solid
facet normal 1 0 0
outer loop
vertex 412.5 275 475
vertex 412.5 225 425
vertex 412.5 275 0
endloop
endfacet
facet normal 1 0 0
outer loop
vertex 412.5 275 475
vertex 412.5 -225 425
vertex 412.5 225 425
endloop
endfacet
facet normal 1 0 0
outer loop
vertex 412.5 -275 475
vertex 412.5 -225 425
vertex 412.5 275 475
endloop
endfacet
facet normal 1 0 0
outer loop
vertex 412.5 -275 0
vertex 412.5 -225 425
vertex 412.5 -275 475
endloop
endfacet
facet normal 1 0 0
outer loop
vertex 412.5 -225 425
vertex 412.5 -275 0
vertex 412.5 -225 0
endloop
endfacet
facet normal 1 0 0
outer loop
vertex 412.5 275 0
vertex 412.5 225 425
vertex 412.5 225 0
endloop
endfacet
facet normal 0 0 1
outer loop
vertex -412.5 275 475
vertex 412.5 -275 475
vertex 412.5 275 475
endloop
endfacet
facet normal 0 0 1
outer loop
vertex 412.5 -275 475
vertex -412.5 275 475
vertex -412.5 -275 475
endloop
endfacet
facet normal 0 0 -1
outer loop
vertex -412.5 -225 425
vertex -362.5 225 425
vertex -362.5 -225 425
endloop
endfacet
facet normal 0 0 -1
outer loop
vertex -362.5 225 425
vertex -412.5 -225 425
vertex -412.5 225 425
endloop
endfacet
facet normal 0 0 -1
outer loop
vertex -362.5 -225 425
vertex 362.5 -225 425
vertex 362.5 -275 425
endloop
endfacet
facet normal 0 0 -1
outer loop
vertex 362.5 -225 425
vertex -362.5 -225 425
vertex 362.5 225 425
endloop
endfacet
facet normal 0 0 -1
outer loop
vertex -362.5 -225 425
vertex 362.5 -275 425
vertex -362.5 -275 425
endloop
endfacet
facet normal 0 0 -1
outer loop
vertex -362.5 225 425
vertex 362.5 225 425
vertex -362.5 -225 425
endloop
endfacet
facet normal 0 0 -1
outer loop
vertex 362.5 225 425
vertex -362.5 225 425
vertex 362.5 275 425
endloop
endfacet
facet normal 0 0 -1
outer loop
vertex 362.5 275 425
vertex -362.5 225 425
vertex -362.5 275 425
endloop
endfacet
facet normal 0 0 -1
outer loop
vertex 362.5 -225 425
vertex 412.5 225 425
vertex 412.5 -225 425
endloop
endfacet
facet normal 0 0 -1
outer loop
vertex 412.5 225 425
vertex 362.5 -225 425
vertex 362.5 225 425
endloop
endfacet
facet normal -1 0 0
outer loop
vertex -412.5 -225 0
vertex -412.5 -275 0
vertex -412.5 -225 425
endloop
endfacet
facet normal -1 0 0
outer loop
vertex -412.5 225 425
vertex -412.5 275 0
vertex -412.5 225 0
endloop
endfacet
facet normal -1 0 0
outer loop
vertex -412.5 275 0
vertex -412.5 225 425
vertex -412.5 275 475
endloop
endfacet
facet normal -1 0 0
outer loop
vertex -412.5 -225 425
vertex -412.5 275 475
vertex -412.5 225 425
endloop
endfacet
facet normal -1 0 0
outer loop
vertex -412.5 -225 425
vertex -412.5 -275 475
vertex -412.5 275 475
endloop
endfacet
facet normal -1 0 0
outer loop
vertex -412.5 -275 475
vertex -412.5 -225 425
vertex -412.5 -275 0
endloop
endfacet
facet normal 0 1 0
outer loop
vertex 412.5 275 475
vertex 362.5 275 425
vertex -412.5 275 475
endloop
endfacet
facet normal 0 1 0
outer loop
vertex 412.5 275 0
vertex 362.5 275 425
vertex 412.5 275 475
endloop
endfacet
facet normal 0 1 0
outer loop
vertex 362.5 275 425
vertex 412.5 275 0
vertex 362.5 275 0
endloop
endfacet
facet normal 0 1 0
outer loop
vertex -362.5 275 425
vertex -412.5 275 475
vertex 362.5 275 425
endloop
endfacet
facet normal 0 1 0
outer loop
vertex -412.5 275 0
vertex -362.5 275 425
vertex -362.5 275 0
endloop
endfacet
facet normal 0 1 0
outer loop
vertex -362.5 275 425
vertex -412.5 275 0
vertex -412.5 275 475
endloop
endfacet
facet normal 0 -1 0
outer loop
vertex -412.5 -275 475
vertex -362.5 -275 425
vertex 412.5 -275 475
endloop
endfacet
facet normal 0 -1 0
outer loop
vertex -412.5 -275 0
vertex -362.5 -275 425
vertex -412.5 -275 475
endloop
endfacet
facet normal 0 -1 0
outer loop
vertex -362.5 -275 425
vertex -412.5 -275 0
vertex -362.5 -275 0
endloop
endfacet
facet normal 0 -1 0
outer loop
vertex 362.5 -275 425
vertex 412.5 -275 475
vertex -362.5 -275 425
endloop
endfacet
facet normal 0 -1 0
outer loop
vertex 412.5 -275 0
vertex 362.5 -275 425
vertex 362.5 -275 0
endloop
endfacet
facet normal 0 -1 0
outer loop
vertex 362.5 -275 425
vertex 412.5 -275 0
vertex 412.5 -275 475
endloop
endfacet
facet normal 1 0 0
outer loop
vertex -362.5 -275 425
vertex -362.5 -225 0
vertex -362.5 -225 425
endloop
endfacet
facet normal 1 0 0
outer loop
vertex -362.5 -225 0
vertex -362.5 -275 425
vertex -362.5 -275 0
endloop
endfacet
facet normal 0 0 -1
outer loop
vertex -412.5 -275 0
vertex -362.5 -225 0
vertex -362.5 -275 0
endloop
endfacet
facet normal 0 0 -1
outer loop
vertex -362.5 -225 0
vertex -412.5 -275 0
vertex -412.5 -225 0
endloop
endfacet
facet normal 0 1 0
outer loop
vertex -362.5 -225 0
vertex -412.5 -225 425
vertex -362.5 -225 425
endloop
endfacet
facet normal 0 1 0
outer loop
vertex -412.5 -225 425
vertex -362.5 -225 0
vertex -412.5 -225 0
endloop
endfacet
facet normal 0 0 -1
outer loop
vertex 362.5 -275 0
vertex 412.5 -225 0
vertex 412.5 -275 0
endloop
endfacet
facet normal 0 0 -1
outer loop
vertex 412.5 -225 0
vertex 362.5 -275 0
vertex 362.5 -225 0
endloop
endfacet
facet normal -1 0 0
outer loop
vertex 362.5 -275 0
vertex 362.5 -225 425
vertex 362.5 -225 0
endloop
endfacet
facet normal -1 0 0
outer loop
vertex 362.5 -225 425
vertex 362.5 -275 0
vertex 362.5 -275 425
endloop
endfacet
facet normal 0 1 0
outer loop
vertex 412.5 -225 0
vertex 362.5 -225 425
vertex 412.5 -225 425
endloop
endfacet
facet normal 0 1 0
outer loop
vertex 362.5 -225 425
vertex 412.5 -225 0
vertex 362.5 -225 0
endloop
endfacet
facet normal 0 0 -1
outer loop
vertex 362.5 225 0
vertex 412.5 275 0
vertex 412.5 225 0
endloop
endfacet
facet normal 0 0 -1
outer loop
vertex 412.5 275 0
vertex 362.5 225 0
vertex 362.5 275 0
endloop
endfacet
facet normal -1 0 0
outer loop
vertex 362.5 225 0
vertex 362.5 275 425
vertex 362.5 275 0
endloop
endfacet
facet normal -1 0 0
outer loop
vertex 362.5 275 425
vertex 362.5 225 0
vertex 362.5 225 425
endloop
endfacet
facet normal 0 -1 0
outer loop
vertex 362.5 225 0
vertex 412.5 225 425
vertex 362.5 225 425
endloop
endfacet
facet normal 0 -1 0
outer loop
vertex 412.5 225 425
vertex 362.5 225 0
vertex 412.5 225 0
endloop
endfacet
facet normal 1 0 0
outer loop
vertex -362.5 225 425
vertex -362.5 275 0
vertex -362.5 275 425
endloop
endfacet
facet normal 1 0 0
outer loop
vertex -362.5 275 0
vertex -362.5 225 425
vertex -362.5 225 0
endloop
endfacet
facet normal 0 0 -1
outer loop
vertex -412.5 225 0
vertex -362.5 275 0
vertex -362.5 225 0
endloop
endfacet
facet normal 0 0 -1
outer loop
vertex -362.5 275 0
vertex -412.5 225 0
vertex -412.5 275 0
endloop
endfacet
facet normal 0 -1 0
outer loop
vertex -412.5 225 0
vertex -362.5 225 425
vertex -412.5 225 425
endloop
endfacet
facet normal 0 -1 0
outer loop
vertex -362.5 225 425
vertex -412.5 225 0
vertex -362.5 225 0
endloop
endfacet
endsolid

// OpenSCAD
// 50% longer IKEA Lack table. Dimensions: length: 82.5 cm, width: 55 cm, height: 45 cm.

side_x = 825;
side_y = 550;
height = 450;
thickness = 50;

union()
{
  translate([-side_x/2, -side_y/2, height - thickness/2])
    cube([side_x, side_y, thickness]);

  translate([-side_x/2, -side_y/2, 0])
    cube([thickness, thickness, height]);

  translate([+side_x/2 - thickness, -side_y/2, 0])
    cube([thickness, thickness, height]);

  translate([+side_x/2 - thickness, +side_y/2 - thickness, 0])
    cube([thickness, thickness, height]);
  
  translate([-side_x/2, +side_y/2 - thickness, 0])
    cube([thickness, thickness, height]);
}
